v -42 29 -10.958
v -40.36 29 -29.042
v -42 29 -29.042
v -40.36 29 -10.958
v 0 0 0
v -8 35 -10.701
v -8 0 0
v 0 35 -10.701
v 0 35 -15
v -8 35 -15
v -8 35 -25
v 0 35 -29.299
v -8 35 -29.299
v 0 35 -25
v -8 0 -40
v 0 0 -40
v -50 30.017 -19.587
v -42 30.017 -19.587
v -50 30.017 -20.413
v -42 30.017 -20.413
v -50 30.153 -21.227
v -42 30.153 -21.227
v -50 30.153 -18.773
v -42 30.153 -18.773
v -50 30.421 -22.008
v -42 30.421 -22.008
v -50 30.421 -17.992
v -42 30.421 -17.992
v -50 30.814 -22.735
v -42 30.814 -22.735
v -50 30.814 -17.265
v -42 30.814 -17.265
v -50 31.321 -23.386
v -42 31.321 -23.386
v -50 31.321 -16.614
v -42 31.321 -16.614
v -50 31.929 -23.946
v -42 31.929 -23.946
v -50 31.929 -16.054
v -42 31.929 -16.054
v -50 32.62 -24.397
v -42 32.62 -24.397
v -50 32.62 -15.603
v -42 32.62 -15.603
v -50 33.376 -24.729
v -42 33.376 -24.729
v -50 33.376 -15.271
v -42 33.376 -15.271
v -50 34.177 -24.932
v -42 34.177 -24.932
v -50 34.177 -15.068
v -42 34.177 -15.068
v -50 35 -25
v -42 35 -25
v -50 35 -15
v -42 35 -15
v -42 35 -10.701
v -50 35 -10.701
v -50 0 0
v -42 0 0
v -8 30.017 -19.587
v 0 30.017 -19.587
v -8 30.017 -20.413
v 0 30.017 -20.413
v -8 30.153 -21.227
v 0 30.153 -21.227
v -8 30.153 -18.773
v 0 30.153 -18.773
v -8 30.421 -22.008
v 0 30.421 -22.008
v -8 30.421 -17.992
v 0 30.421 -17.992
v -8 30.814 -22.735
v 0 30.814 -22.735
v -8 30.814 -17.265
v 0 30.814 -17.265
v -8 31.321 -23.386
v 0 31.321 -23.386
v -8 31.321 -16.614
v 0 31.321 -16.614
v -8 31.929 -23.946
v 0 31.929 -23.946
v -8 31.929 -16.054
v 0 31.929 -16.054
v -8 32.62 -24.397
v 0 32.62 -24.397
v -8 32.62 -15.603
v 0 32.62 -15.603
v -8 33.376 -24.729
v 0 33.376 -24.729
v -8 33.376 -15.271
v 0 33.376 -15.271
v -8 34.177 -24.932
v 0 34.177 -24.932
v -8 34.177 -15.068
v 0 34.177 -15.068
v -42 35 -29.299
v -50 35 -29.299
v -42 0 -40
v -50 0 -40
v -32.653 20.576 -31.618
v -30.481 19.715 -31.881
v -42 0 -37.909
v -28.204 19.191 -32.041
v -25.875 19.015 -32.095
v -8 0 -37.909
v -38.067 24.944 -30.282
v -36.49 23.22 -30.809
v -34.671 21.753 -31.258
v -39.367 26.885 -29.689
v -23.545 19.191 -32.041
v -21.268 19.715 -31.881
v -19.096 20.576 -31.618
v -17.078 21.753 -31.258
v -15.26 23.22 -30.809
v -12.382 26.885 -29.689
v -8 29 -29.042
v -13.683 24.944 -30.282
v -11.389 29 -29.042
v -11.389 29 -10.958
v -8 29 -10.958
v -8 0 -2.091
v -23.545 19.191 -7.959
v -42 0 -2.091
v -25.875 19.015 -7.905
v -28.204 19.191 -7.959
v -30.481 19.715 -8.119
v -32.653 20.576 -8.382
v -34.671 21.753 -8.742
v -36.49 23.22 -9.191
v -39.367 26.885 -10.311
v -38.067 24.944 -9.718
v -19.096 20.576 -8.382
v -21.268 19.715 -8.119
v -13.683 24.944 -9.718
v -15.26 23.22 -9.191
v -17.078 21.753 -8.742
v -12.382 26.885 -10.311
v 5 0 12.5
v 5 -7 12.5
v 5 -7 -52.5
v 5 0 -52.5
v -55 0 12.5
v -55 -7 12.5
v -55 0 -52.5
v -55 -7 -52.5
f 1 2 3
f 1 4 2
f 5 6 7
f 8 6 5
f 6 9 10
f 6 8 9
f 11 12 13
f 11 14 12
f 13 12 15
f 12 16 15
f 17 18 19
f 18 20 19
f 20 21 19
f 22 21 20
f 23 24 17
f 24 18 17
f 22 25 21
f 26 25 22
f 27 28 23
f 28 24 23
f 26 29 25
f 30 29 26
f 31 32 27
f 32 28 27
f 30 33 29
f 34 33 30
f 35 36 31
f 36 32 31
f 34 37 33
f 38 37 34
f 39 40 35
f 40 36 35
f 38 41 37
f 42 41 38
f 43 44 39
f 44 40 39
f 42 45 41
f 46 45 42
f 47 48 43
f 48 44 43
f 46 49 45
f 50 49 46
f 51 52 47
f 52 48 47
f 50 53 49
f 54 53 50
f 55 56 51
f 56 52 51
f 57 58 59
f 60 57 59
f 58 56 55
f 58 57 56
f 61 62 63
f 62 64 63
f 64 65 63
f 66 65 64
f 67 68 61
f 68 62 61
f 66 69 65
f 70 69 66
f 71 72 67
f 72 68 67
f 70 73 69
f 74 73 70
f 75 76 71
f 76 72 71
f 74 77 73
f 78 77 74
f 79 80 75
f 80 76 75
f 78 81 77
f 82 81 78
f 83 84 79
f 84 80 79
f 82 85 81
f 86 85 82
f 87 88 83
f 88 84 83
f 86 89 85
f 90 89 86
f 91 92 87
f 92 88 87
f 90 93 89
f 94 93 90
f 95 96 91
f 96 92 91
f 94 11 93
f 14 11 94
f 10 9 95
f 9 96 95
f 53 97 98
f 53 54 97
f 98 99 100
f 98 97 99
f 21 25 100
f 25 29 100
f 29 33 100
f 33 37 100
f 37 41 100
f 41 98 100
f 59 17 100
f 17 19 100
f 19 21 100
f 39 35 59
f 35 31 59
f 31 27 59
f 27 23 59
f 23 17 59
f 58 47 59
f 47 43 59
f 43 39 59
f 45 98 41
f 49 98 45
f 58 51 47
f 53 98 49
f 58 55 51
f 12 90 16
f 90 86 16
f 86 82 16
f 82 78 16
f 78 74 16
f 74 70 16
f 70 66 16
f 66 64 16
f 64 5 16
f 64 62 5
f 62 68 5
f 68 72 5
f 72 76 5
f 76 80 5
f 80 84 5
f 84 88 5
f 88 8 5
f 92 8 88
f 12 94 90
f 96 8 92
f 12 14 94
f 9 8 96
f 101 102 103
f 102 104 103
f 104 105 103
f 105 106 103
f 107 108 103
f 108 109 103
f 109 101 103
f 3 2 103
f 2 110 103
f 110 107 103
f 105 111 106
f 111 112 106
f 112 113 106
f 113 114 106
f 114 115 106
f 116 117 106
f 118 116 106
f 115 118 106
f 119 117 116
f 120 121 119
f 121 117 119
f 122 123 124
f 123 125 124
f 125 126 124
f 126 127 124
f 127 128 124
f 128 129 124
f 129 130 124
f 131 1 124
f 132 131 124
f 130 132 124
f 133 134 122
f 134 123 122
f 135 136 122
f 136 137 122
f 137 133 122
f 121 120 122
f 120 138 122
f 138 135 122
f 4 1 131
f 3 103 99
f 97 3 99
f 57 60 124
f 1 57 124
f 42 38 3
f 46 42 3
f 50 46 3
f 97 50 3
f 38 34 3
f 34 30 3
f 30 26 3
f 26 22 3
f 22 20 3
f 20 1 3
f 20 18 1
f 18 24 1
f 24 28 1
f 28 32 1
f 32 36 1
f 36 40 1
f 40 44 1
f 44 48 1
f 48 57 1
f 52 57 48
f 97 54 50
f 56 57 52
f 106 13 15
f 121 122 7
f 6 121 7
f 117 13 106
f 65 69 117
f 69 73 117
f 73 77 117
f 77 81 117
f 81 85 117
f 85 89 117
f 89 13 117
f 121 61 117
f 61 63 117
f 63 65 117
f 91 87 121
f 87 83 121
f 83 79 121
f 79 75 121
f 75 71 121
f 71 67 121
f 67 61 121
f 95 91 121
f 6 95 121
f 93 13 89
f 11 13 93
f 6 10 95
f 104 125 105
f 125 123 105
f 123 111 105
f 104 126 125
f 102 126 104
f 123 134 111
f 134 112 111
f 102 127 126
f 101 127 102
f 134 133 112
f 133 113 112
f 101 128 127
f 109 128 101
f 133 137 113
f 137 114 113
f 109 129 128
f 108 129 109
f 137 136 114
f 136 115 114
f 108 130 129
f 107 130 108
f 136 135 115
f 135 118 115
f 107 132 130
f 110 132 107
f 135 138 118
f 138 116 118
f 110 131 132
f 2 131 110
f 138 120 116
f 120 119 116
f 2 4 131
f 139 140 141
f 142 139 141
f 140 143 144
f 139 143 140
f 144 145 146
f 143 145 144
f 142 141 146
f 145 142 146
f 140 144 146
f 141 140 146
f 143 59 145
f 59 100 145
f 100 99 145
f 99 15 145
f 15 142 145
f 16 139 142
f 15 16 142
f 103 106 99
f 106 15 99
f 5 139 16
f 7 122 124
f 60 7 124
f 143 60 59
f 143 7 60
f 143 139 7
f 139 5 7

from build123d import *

# Parameters (mm, degrees)
BOSS_EXTRUDE1_DEPTH = 50
CUT_EXTRUDE1_START  = -8
CUT_EXTRUDE1_DEPTH  = 34
CUT_EXTRUDE2_DEPTH  = 34
SKETCH5_W           = 60
SKETCH5_H           = 65
BOSS_EXTRUDE3_DEPTH = 7


with BuildPart() as part:
    # Sketch2 → Boss-Extrude1 (new body)
    with BuildSketch(Plane(origin=(0, 0, 0), x_dir=(0, 0, -1), z_dir=(1, 0, 0))):
        with BuildLine():
            Line((40, 0), (0, 0))
            Line((0, 0), (10.700573851, 35))
            Line((10.700573851, 35), (15, 35))
            ThreePointArc((15, 35), (20, 30), (25, 35))
            Line((25, 35), (29.299426149, 35))
            Line((29.299426149, 35), (40, 0))
        make_face()
    extrude(amount=-BOSS_EXTRUDE1_DEPTH)

    # Sketch3 → Cut-Extrude1 (cut)
    with BuildSketch(Plane(origin=(0, 0, 0), x_dir=(0, 0, -1), z_dir=(1, 0, 0)).offset(CUT_EXTRUDE1_START)):
        Polygon((10.700573851, 35), (0, 0), (2.091383513, 0), (10.957573275, 29), (29.042426725, 29), (37.908616487, 0), (40, 0), (29.299426149, 35), (27.730888514, 35), (12.269111486, 35), align=None)
    extrude(amount=-CUT_EXTRUDE1_DEPTH, mode=Mode.SUBTRACT)

    # Sketch4 → Cut-Extrude2 (cut)
    with BuildSketch(Plane.XY):
        with BuildLine():
            Line((-11.388981029, 29), (-40.360215297, 29))
            ThreePointArc((-40.360215297, 29), (-25.874598163, 19.015151515), (-11.388981029, 29))
        make_face()
    extrude(amount=-CUT_EXTRUDE2_DEPTH, mode=Mode.SUBTRACT)

    # Sketch5 → Boss-Extrude3 (add)
    with BuildSketch(Plane.XZ):
        with Locations((-25, -20)):
            Rectangle(SKETCH5_W, SKETCH5_H)
    extrude(amount=BOSS_EXTRUDE3_DEPTH)


solid = part.part
